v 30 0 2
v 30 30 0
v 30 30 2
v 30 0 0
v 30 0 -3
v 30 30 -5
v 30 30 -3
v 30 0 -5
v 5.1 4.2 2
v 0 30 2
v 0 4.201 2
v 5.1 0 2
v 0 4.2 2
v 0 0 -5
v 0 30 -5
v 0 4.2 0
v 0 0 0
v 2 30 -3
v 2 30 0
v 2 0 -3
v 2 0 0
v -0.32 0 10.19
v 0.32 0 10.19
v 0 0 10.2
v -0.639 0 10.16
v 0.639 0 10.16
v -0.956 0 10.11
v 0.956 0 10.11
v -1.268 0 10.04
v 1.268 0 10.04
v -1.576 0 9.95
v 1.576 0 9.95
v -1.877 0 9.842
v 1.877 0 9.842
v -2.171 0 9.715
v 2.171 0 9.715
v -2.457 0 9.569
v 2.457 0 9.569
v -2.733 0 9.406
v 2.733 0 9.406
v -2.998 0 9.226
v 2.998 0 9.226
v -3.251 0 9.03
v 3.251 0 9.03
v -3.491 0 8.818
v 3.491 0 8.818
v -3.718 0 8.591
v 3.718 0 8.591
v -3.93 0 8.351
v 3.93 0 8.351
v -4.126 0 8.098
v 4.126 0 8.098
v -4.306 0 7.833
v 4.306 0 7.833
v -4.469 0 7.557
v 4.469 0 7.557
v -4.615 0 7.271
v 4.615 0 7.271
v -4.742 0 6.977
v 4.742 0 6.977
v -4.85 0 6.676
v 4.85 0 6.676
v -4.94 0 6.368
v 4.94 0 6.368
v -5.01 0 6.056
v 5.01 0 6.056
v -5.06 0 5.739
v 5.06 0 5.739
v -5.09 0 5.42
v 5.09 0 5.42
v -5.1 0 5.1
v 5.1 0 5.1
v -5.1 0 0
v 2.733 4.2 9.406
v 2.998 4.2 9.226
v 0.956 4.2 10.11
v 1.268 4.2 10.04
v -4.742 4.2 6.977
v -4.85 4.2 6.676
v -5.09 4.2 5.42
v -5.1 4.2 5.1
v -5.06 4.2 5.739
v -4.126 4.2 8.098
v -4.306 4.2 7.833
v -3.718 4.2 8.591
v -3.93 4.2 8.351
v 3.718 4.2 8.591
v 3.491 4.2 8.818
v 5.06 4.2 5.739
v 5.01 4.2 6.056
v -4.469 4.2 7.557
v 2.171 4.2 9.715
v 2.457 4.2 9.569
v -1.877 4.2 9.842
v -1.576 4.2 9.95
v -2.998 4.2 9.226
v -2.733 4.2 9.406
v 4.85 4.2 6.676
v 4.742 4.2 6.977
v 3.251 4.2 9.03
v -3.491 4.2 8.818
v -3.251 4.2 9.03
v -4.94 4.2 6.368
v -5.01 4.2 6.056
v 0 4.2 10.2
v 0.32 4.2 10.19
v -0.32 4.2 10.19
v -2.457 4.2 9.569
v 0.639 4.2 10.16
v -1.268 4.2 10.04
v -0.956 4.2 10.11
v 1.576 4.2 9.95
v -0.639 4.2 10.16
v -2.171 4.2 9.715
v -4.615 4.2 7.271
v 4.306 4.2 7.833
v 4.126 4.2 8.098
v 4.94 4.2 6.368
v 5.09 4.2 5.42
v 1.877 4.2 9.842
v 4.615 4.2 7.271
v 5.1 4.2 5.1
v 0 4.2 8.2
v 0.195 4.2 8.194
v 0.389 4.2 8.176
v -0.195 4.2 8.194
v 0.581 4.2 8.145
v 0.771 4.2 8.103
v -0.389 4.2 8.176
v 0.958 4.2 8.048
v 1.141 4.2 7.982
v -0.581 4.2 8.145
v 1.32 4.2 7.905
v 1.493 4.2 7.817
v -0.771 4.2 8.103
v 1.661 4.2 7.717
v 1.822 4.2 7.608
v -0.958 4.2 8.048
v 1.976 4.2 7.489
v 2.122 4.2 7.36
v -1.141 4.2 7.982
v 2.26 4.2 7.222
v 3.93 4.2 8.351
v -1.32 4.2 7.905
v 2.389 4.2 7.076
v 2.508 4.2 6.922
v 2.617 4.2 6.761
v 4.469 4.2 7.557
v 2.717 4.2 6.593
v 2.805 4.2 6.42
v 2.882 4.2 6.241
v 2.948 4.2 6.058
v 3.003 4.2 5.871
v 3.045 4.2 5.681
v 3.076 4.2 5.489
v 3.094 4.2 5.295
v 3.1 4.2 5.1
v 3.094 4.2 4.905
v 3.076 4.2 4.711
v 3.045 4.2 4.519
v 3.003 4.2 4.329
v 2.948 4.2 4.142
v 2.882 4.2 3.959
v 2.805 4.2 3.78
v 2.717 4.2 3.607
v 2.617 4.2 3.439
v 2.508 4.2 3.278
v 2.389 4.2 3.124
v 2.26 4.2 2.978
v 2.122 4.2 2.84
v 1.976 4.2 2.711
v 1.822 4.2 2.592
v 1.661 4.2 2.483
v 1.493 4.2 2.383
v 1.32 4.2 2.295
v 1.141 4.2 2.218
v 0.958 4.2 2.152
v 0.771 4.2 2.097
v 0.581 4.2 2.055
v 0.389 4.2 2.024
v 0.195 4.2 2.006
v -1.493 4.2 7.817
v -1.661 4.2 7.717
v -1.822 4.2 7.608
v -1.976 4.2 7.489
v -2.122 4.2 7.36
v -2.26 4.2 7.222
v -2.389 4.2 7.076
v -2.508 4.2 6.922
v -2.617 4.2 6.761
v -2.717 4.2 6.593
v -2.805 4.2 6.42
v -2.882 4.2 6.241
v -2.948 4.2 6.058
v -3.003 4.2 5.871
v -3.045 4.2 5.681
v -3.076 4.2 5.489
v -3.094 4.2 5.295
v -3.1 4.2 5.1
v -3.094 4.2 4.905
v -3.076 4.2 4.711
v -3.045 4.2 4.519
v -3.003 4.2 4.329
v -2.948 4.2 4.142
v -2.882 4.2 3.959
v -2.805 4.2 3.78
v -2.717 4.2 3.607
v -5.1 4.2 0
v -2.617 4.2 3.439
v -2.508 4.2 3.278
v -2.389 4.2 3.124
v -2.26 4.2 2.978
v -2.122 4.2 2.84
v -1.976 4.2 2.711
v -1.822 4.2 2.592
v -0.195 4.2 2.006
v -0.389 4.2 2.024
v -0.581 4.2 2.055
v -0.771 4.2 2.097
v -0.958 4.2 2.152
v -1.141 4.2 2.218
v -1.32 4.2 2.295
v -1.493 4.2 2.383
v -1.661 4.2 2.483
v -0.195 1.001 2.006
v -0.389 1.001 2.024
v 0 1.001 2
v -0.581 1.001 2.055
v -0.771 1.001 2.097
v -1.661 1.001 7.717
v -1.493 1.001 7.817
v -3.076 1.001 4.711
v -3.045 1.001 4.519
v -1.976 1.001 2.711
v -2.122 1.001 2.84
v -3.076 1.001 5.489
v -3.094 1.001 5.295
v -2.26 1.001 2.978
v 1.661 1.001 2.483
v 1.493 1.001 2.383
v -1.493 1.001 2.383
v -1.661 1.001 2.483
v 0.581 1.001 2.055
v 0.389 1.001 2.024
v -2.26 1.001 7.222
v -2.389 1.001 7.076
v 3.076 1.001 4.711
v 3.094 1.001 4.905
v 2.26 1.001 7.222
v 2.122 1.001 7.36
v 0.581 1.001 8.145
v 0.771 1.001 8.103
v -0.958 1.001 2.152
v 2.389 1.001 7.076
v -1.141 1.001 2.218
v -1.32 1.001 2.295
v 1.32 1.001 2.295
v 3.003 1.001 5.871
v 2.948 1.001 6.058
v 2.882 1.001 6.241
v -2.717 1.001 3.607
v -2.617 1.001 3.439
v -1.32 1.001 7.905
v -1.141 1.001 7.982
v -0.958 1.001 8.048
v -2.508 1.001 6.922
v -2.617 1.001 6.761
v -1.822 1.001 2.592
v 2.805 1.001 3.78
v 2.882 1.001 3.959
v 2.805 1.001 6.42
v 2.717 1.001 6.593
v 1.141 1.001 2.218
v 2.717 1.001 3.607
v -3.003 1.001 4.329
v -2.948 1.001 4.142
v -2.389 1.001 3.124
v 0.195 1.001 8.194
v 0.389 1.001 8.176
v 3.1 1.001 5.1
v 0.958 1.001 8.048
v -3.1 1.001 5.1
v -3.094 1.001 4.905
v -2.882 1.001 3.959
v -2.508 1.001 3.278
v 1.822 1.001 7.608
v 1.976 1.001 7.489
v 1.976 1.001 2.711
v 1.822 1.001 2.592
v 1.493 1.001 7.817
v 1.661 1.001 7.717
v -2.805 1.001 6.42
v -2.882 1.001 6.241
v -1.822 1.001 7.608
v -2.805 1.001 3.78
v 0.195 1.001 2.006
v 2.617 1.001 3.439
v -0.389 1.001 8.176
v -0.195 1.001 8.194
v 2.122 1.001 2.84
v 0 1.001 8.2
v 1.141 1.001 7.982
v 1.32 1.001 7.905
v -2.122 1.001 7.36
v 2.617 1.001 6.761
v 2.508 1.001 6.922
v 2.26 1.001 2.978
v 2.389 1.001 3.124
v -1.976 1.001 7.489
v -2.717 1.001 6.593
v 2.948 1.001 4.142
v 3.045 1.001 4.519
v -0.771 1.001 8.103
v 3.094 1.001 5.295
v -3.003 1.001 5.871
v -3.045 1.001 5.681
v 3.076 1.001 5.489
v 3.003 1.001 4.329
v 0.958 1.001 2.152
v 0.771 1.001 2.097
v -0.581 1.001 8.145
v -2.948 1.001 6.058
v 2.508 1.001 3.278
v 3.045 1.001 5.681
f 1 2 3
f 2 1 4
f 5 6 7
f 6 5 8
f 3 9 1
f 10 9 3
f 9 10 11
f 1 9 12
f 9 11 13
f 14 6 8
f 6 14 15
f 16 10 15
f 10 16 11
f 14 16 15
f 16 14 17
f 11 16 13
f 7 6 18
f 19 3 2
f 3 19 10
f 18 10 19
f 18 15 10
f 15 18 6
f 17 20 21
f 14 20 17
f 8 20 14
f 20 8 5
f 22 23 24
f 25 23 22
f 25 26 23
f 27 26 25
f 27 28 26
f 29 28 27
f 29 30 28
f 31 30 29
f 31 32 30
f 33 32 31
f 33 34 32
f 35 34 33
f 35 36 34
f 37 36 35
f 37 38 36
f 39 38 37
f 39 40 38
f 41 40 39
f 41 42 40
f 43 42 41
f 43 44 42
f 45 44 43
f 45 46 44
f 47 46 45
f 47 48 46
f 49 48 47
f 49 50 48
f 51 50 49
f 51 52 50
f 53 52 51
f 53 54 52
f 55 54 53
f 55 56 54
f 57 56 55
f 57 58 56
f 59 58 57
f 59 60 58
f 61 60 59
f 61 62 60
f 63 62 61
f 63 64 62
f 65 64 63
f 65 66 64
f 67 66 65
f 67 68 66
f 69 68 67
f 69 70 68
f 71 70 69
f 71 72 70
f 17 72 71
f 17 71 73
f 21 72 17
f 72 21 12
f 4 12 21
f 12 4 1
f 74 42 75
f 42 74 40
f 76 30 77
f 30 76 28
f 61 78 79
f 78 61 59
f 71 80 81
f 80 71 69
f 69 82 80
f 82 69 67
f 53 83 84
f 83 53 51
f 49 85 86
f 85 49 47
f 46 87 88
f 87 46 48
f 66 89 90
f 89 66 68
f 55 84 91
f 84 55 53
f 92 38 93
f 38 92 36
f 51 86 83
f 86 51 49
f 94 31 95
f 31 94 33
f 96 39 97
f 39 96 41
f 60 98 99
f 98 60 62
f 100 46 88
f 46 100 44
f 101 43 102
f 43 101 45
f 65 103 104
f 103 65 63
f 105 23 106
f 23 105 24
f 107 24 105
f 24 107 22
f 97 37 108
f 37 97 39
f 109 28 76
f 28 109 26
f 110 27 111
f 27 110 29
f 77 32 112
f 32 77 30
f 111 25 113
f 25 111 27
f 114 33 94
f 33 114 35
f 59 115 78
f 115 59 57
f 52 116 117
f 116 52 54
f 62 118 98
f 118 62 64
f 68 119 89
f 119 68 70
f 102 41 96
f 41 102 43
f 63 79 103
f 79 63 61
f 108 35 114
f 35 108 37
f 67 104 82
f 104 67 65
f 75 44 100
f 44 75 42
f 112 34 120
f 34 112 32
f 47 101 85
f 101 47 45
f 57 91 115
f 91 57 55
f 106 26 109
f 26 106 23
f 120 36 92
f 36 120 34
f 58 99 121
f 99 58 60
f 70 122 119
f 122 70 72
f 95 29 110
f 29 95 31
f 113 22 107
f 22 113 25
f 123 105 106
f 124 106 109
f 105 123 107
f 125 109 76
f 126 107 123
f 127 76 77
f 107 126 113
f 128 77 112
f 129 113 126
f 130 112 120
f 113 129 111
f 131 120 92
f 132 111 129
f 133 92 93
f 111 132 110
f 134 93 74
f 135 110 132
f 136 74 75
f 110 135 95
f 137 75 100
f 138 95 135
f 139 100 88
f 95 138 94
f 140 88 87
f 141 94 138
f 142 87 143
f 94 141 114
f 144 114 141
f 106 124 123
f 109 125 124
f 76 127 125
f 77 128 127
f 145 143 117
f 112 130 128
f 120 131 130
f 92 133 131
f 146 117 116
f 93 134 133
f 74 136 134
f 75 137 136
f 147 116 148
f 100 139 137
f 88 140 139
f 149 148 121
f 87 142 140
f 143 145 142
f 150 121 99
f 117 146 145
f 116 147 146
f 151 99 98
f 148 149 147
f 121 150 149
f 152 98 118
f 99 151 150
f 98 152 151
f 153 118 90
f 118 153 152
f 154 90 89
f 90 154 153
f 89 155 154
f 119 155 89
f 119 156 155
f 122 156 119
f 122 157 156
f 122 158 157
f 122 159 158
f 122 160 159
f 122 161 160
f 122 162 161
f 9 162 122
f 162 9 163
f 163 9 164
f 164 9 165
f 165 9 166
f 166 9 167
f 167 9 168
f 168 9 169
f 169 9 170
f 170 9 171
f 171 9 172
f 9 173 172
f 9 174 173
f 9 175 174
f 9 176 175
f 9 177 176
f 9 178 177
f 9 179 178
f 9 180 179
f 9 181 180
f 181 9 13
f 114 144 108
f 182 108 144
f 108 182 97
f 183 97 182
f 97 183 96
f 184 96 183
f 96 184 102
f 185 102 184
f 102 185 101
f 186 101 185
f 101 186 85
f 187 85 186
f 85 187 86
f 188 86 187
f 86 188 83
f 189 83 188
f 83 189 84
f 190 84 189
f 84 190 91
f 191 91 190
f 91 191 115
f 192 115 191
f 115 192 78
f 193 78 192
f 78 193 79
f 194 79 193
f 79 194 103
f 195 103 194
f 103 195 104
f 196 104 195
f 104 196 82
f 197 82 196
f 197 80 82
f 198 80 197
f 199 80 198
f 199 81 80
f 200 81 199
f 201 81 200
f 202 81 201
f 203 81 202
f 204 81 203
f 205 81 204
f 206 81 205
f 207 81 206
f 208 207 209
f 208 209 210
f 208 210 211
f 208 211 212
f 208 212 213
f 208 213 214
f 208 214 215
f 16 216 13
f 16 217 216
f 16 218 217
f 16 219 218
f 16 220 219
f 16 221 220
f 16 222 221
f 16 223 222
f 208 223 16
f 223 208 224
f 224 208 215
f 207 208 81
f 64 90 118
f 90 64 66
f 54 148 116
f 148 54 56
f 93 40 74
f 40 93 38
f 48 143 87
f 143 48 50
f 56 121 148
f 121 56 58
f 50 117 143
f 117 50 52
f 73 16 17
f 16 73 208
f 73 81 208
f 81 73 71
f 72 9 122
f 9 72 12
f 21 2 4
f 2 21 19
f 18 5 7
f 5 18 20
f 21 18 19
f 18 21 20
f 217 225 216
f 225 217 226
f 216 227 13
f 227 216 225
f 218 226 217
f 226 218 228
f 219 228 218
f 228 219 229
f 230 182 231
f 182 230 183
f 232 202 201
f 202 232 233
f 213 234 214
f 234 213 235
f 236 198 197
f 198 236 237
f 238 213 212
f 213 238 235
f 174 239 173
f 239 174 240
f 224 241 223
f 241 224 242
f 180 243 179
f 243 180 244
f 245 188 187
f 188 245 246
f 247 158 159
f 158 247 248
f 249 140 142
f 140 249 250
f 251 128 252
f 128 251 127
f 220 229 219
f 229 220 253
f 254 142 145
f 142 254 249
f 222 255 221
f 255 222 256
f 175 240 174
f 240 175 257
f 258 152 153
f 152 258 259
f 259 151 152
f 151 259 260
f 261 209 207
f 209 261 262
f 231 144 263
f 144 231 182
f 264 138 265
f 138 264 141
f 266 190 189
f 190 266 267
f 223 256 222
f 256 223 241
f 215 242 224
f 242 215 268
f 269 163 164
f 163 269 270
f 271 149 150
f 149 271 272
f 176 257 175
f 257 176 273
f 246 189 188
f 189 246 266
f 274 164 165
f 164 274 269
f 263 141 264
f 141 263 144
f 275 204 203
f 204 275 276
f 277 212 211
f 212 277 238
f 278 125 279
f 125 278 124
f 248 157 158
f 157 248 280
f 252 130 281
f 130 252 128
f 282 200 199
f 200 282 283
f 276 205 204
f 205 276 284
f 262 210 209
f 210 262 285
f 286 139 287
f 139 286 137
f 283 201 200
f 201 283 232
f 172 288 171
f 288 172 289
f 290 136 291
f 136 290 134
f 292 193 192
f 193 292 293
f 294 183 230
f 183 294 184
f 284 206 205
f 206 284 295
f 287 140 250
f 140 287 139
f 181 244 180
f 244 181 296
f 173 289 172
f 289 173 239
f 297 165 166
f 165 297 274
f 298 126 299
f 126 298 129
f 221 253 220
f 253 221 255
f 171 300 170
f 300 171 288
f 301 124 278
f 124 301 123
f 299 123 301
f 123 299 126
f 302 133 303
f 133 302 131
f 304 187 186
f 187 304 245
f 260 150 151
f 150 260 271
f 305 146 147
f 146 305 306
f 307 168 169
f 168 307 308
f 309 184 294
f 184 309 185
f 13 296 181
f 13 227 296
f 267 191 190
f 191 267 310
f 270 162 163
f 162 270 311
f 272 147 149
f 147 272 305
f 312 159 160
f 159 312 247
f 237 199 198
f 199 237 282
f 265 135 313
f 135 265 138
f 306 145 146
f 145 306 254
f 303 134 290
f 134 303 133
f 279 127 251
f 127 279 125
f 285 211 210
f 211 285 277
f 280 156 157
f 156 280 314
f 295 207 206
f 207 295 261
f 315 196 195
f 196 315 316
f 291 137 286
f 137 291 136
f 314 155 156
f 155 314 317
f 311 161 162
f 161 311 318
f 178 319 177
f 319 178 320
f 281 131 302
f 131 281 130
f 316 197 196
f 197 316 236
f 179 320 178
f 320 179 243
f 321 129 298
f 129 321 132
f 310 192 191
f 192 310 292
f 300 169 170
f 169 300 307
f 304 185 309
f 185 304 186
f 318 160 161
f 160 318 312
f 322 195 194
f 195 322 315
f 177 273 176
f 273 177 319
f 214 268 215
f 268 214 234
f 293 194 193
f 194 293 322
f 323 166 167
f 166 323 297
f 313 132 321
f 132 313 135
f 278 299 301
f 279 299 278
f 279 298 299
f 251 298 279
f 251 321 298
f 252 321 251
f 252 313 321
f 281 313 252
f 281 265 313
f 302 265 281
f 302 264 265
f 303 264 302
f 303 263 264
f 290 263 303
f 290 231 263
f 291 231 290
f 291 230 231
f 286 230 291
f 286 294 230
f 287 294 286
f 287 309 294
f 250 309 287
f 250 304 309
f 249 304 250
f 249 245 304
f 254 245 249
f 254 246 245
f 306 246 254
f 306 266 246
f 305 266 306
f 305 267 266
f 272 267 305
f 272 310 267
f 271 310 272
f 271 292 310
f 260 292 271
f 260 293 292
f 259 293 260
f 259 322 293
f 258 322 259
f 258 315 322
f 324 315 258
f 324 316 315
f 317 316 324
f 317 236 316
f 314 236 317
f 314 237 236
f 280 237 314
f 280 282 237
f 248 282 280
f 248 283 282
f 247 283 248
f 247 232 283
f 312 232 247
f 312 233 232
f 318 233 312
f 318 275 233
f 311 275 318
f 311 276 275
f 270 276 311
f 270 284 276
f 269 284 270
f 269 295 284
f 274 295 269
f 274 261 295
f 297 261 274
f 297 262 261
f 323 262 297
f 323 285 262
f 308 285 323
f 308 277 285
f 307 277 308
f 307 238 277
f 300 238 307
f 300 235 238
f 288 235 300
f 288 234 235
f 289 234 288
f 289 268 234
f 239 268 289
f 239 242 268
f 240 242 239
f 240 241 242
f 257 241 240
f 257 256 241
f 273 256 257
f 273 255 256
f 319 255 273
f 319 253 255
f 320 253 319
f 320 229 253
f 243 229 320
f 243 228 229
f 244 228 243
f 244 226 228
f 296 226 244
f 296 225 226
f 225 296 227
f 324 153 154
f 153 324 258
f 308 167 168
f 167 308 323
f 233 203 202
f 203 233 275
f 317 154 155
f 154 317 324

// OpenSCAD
//
// ktBOX15
//
//

gap1 = 0.001;
gap2 = 0.002;

th = 2;
pth = 3;

r = 6.2;
rth = 3.2;
rth2 = 4.2;

mag();

module hole()
{
difference()
{
    union()
    {
        translate([0, 0, -pth-th]) cube([30, 30, th+pth+th]);
        translate([0, 0, (r+th*2)/2]) rotate([0, 90, 90]) cylinder(h=rth, r=(r+th*2)/2, $fn=100);
        translate([-(r+th*2)/2, 0, 0]) cube([(r+th*2)/2, rth, (r+th*2)/2]);
        translate([0, 0, 0]) cube([(r+th*2)/2, rth, (r+th*2)/2]);
    }
    translate([th, -gap1, -pth-th+th]) cube([30, 30+gap2, pth]);
    
    translate([0, 0-gap1, (r+th*2)/2]) rotate([0, 90, 90]) cylinder(h=rth+gap2, r=r/2, $fn=100);
}
}
module mag()
{
difference()
{
    union()
    {
        translate([0, 0, -pth-th]) cube([30, 30, th+pth+th]);
        translate([0, 0, (r+th*2)/2]) rotate([0, 90, 90]) cylinder(h=rth2, r=(r+th*2)/2, $fn=100);
        translate([-(r+th*2)/2, 0, 0]) cube([(r+th*2)/2, rth2, (r+th*2)/2]);
        translate([0, 0, 0]) cube([(r+th*2)/2, rth2, (r+th*2)/2]);
    }
    translate([th, -gap1, -pth-th+th]) cube([30, 30+gap2, pth]);
    
    translate([0, rth2-rth+gap1, (r+th*2)/2]) rotate([0, 90, 90]) cylinder(h=rth, r=r/2, $fn=100);
}
}
